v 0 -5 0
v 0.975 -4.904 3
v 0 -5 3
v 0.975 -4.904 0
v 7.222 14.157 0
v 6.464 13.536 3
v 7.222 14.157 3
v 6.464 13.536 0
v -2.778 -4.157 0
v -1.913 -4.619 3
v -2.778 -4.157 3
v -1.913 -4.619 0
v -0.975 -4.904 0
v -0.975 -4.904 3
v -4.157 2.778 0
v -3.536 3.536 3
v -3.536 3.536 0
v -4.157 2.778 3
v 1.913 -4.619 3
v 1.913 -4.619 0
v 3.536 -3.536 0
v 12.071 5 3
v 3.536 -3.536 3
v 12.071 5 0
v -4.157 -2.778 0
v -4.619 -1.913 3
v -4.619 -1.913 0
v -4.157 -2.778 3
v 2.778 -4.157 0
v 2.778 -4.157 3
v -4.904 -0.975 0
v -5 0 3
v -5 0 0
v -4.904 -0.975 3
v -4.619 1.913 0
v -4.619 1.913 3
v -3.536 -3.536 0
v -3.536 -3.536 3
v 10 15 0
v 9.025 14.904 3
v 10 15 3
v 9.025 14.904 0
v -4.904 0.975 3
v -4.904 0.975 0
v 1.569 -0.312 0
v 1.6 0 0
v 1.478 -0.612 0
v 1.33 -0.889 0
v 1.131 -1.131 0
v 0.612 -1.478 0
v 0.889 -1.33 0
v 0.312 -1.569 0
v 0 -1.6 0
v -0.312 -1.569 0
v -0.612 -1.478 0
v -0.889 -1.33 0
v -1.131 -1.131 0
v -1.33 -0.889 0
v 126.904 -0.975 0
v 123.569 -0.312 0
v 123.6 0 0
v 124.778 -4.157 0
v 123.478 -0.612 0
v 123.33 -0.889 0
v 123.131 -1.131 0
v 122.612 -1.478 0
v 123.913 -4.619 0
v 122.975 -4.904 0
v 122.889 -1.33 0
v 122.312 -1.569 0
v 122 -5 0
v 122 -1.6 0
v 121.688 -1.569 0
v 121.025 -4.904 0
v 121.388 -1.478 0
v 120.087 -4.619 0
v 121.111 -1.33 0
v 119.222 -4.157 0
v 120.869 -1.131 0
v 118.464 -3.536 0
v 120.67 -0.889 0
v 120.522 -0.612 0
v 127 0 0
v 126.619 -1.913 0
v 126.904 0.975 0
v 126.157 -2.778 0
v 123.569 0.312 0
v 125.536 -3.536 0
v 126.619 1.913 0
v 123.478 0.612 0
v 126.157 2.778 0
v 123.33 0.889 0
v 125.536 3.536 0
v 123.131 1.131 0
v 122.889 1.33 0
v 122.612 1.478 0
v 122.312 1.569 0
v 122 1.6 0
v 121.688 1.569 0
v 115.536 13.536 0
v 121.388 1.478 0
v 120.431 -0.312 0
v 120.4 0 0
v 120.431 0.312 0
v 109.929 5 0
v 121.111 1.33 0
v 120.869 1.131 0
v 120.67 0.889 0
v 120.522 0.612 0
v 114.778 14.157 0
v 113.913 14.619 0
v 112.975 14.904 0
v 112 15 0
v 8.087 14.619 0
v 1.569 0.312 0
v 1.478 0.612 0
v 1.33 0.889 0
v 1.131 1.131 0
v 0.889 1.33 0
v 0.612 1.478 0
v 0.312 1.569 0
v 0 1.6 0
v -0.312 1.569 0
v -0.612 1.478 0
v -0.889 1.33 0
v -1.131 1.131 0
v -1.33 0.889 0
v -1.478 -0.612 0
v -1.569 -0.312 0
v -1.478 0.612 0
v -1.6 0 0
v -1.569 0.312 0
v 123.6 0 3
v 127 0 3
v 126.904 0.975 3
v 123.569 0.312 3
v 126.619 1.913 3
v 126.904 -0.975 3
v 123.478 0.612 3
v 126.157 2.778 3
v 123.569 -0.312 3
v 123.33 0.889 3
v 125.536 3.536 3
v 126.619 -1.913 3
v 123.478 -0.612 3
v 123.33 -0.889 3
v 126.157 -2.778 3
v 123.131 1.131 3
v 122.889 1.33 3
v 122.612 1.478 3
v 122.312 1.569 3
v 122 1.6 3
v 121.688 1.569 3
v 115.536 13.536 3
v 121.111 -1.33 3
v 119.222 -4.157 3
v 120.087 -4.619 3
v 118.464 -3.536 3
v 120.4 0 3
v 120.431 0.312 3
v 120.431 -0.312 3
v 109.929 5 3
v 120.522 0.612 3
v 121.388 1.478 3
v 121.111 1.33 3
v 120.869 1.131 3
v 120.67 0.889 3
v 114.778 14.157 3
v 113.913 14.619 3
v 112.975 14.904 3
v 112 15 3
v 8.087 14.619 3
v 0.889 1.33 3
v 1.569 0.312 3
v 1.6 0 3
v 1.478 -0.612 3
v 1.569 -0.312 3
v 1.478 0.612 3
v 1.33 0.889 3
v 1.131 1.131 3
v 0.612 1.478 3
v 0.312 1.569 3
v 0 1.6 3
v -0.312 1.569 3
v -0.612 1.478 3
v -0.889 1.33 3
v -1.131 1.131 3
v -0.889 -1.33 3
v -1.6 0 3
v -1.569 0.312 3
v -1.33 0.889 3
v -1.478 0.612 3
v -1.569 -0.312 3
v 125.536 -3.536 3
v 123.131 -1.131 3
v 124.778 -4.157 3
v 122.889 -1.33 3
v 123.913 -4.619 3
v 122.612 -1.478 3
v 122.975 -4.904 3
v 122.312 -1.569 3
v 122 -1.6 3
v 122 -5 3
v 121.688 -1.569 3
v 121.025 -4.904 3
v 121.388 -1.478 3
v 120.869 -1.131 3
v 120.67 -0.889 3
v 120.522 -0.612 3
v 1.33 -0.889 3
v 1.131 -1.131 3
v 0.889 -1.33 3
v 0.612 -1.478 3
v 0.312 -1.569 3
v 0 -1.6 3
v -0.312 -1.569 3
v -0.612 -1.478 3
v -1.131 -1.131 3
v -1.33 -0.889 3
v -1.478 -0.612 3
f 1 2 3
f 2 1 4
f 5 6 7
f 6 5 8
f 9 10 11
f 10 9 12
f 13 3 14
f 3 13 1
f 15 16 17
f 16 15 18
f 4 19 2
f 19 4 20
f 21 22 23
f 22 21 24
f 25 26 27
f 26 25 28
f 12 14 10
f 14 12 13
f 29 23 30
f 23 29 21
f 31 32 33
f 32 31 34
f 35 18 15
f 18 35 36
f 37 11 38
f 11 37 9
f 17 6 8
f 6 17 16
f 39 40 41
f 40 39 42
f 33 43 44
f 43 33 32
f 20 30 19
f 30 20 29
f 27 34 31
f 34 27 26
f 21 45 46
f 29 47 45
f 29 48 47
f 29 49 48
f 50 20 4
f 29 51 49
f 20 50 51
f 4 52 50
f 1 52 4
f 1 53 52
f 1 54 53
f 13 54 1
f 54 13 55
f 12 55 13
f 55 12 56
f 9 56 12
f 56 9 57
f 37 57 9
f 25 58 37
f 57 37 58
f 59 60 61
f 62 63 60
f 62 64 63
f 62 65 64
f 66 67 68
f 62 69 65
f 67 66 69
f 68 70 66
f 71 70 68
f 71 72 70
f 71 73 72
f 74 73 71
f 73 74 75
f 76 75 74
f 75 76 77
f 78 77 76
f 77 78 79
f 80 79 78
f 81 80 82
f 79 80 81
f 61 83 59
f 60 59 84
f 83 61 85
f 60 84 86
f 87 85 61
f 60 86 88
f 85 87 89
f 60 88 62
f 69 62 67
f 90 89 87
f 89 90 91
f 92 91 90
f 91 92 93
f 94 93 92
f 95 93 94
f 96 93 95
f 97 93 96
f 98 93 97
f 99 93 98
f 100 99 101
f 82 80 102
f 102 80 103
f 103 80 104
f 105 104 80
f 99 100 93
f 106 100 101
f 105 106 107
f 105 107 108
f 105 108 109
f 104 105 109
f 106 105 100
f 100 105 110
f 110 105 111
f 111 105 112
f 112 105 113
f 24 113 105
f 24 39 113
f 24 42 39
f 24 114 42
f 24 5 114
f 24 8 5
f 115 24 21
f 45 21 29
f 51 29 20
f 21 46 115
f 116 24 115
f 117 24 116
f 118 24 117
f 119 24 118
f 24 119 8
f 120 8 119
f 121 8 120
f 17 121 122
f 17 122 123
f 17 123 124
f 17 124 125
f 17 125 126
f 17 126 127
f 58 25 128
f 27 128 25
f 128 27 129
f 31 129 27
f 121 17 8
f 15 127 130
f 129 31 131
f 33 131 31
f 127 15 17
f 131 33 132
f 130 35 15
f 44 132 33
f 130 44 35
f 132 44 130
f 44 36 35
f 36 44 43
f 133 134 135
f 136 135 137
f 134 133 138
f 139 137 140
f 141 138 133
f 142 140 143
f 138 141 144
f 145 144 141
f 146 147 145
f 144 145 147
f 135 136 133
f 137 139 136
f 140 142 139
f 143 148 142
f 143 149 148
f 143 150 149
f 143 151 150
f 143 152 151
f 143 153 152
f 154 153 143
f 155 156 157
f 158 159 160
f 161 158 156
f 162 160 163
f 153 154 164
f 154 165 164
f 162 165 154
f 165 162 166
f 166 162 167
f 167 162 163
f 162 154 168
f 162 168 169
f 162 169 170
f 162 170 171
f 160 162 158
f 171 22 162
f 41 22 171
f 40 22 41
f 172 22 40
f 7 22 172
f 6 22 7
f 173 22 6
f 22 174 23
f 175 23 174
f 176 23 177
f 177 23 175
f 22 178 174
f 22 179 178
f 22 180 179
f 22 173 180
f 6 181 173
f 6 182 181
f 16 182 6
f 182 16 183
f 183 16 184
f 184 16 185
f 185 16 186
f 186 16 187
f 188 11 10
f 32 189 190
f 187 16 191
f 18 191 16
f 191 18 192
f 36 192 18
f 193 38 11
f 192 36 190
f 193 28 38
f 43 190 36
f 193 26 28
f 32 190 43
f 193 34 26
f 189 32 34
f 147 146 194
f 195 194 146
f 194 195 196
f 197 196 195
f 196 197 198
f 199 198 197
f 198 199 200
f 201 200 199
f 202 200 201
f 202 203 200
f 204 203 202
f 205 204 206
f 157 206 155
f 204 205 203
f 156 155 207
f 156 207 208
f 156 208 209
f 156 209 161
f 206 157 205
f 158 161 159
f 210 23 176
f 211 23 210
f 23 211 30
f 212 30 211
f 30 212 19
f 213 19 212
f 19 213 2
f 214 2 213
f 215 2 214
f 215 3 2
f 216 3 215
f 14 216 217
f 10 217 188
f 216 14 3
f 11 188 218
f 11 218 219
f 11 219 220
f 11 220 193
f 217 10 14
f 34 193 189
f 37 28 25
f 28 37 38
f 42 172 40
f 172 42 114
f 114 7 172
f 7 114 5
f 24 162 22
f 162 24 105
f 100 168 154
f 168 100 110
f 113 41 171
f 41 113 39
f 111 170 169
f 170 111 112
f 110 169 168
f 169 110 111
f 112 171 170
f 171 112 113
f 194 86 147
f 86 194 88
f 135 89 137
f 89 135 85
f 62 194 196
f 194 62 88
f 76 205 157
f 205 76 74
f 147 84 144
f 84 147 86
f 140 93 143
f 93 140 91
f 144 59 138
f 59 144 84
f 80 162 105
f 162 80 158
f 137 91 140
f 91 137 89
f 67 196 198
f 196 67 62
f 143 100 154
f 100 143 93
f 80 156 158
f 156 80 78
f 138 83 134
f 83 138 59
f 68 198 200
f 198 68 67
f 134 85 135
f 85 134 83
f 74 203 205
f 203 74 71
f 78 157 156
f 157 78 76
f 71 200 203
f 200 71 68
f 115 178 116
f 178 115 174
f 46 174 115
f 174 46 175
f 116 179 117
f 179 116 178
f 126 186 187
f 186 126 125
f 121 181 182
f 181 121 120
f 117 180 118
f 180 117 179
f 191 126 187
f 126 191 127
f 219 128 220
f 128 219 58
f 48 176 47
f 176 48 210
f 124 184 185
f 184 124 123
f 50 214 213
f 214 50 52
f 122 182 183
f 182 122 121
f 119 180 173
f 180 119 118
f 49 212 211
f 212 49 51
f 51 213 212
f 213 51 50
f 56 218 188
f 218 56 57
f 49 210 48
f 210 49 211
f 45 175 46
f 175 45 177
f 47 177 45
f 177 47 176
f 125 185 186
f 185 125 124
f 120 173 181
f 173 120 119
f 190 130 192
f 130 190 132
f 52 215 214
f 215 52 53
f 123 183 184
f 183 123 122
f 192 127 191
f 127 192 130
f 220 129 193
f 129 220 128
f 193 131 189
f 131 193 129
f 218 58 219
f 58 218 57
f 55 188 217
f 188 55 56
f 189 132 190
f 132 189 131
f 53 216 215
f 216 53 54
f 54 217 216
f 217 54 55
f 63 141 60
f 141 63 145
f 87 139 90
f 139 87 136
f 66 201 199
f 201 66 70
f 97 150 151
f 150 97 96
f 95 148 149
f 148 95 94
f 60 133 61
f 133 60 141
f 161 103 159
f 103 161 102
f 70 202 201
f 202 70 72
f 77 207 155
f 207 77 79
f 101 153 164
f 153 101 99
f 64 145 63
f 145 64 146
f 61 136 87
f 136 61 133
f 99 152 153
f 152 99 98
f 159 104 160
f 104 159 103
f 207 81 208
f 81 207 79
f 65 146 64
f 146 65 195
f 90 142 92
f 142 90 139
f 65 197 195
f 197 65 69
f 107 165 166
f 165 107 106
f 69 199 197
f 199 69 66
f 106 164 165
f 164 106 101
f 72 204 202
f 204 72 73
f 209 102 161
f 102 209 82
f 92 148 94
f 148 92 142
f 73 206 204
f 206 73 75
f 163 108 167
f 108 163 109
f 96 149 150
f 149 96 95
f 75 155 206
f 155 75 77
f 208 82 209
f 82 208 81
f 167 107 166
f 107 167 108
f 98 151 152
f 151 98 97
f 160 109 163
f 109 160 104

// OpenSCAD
//EuroCardDwarsBase4

$fn = 32;

beugellengte = 122.0;
beugelbreedte = 10.0;
beugeldikte = 3.0;

beugelDist = 122.0;

module beugel() {
    translate([0, -beugelbreedte/2, 0]) cube([beugellengte, beugelbreedte, beugeldikte]);
    cylinder(d = beugelbreedte, h = beugeldikte);
    translate([beugelDist, 0, 0]) cylinder(d = beugelbreedte, h = beugeldikte);
}

module beugel2() {
    hull() {
        cylinder(d = beugelbreedte, h = beugeldikte);
        translate([beugelbreedte, beugelbreedte, 0]) cylinder(d = beugelbreedte, h = beugeldikte);
    }
    hull() {
        translate([beugelbreedte, beugelbreedte, 0]) cylinder(d = beugelbreedte, h = beugeldikte);
        translate([beugellengte - beugelbreedte, beugelbreedte, 0]) cylinder(d = beugelbreedte, h = beugeldikte);
    }
    hull() {
        translate([beugellengte - beugelbreedte, beugelbreedte, 0]) cylinder(d = beugelbreedte, h = beugeldikte);
        translate([beugelDist, 0, 0]) cylinder(d = beugelbreedte, h = beugeldikte);
    }
}
    

difference() {
    beugel2();
    translate([0, 0, -0.01]) cylinder(d = 3.2, h = beugeldikte + 0.02);
    translate([beugelDist, 0, -0.01]) cylinder(d = 3.2, h = beugeldikte + 0.02);
}

//translate([0, 0, -1]) color("red") cube([beugelDist, 2, 2]);
